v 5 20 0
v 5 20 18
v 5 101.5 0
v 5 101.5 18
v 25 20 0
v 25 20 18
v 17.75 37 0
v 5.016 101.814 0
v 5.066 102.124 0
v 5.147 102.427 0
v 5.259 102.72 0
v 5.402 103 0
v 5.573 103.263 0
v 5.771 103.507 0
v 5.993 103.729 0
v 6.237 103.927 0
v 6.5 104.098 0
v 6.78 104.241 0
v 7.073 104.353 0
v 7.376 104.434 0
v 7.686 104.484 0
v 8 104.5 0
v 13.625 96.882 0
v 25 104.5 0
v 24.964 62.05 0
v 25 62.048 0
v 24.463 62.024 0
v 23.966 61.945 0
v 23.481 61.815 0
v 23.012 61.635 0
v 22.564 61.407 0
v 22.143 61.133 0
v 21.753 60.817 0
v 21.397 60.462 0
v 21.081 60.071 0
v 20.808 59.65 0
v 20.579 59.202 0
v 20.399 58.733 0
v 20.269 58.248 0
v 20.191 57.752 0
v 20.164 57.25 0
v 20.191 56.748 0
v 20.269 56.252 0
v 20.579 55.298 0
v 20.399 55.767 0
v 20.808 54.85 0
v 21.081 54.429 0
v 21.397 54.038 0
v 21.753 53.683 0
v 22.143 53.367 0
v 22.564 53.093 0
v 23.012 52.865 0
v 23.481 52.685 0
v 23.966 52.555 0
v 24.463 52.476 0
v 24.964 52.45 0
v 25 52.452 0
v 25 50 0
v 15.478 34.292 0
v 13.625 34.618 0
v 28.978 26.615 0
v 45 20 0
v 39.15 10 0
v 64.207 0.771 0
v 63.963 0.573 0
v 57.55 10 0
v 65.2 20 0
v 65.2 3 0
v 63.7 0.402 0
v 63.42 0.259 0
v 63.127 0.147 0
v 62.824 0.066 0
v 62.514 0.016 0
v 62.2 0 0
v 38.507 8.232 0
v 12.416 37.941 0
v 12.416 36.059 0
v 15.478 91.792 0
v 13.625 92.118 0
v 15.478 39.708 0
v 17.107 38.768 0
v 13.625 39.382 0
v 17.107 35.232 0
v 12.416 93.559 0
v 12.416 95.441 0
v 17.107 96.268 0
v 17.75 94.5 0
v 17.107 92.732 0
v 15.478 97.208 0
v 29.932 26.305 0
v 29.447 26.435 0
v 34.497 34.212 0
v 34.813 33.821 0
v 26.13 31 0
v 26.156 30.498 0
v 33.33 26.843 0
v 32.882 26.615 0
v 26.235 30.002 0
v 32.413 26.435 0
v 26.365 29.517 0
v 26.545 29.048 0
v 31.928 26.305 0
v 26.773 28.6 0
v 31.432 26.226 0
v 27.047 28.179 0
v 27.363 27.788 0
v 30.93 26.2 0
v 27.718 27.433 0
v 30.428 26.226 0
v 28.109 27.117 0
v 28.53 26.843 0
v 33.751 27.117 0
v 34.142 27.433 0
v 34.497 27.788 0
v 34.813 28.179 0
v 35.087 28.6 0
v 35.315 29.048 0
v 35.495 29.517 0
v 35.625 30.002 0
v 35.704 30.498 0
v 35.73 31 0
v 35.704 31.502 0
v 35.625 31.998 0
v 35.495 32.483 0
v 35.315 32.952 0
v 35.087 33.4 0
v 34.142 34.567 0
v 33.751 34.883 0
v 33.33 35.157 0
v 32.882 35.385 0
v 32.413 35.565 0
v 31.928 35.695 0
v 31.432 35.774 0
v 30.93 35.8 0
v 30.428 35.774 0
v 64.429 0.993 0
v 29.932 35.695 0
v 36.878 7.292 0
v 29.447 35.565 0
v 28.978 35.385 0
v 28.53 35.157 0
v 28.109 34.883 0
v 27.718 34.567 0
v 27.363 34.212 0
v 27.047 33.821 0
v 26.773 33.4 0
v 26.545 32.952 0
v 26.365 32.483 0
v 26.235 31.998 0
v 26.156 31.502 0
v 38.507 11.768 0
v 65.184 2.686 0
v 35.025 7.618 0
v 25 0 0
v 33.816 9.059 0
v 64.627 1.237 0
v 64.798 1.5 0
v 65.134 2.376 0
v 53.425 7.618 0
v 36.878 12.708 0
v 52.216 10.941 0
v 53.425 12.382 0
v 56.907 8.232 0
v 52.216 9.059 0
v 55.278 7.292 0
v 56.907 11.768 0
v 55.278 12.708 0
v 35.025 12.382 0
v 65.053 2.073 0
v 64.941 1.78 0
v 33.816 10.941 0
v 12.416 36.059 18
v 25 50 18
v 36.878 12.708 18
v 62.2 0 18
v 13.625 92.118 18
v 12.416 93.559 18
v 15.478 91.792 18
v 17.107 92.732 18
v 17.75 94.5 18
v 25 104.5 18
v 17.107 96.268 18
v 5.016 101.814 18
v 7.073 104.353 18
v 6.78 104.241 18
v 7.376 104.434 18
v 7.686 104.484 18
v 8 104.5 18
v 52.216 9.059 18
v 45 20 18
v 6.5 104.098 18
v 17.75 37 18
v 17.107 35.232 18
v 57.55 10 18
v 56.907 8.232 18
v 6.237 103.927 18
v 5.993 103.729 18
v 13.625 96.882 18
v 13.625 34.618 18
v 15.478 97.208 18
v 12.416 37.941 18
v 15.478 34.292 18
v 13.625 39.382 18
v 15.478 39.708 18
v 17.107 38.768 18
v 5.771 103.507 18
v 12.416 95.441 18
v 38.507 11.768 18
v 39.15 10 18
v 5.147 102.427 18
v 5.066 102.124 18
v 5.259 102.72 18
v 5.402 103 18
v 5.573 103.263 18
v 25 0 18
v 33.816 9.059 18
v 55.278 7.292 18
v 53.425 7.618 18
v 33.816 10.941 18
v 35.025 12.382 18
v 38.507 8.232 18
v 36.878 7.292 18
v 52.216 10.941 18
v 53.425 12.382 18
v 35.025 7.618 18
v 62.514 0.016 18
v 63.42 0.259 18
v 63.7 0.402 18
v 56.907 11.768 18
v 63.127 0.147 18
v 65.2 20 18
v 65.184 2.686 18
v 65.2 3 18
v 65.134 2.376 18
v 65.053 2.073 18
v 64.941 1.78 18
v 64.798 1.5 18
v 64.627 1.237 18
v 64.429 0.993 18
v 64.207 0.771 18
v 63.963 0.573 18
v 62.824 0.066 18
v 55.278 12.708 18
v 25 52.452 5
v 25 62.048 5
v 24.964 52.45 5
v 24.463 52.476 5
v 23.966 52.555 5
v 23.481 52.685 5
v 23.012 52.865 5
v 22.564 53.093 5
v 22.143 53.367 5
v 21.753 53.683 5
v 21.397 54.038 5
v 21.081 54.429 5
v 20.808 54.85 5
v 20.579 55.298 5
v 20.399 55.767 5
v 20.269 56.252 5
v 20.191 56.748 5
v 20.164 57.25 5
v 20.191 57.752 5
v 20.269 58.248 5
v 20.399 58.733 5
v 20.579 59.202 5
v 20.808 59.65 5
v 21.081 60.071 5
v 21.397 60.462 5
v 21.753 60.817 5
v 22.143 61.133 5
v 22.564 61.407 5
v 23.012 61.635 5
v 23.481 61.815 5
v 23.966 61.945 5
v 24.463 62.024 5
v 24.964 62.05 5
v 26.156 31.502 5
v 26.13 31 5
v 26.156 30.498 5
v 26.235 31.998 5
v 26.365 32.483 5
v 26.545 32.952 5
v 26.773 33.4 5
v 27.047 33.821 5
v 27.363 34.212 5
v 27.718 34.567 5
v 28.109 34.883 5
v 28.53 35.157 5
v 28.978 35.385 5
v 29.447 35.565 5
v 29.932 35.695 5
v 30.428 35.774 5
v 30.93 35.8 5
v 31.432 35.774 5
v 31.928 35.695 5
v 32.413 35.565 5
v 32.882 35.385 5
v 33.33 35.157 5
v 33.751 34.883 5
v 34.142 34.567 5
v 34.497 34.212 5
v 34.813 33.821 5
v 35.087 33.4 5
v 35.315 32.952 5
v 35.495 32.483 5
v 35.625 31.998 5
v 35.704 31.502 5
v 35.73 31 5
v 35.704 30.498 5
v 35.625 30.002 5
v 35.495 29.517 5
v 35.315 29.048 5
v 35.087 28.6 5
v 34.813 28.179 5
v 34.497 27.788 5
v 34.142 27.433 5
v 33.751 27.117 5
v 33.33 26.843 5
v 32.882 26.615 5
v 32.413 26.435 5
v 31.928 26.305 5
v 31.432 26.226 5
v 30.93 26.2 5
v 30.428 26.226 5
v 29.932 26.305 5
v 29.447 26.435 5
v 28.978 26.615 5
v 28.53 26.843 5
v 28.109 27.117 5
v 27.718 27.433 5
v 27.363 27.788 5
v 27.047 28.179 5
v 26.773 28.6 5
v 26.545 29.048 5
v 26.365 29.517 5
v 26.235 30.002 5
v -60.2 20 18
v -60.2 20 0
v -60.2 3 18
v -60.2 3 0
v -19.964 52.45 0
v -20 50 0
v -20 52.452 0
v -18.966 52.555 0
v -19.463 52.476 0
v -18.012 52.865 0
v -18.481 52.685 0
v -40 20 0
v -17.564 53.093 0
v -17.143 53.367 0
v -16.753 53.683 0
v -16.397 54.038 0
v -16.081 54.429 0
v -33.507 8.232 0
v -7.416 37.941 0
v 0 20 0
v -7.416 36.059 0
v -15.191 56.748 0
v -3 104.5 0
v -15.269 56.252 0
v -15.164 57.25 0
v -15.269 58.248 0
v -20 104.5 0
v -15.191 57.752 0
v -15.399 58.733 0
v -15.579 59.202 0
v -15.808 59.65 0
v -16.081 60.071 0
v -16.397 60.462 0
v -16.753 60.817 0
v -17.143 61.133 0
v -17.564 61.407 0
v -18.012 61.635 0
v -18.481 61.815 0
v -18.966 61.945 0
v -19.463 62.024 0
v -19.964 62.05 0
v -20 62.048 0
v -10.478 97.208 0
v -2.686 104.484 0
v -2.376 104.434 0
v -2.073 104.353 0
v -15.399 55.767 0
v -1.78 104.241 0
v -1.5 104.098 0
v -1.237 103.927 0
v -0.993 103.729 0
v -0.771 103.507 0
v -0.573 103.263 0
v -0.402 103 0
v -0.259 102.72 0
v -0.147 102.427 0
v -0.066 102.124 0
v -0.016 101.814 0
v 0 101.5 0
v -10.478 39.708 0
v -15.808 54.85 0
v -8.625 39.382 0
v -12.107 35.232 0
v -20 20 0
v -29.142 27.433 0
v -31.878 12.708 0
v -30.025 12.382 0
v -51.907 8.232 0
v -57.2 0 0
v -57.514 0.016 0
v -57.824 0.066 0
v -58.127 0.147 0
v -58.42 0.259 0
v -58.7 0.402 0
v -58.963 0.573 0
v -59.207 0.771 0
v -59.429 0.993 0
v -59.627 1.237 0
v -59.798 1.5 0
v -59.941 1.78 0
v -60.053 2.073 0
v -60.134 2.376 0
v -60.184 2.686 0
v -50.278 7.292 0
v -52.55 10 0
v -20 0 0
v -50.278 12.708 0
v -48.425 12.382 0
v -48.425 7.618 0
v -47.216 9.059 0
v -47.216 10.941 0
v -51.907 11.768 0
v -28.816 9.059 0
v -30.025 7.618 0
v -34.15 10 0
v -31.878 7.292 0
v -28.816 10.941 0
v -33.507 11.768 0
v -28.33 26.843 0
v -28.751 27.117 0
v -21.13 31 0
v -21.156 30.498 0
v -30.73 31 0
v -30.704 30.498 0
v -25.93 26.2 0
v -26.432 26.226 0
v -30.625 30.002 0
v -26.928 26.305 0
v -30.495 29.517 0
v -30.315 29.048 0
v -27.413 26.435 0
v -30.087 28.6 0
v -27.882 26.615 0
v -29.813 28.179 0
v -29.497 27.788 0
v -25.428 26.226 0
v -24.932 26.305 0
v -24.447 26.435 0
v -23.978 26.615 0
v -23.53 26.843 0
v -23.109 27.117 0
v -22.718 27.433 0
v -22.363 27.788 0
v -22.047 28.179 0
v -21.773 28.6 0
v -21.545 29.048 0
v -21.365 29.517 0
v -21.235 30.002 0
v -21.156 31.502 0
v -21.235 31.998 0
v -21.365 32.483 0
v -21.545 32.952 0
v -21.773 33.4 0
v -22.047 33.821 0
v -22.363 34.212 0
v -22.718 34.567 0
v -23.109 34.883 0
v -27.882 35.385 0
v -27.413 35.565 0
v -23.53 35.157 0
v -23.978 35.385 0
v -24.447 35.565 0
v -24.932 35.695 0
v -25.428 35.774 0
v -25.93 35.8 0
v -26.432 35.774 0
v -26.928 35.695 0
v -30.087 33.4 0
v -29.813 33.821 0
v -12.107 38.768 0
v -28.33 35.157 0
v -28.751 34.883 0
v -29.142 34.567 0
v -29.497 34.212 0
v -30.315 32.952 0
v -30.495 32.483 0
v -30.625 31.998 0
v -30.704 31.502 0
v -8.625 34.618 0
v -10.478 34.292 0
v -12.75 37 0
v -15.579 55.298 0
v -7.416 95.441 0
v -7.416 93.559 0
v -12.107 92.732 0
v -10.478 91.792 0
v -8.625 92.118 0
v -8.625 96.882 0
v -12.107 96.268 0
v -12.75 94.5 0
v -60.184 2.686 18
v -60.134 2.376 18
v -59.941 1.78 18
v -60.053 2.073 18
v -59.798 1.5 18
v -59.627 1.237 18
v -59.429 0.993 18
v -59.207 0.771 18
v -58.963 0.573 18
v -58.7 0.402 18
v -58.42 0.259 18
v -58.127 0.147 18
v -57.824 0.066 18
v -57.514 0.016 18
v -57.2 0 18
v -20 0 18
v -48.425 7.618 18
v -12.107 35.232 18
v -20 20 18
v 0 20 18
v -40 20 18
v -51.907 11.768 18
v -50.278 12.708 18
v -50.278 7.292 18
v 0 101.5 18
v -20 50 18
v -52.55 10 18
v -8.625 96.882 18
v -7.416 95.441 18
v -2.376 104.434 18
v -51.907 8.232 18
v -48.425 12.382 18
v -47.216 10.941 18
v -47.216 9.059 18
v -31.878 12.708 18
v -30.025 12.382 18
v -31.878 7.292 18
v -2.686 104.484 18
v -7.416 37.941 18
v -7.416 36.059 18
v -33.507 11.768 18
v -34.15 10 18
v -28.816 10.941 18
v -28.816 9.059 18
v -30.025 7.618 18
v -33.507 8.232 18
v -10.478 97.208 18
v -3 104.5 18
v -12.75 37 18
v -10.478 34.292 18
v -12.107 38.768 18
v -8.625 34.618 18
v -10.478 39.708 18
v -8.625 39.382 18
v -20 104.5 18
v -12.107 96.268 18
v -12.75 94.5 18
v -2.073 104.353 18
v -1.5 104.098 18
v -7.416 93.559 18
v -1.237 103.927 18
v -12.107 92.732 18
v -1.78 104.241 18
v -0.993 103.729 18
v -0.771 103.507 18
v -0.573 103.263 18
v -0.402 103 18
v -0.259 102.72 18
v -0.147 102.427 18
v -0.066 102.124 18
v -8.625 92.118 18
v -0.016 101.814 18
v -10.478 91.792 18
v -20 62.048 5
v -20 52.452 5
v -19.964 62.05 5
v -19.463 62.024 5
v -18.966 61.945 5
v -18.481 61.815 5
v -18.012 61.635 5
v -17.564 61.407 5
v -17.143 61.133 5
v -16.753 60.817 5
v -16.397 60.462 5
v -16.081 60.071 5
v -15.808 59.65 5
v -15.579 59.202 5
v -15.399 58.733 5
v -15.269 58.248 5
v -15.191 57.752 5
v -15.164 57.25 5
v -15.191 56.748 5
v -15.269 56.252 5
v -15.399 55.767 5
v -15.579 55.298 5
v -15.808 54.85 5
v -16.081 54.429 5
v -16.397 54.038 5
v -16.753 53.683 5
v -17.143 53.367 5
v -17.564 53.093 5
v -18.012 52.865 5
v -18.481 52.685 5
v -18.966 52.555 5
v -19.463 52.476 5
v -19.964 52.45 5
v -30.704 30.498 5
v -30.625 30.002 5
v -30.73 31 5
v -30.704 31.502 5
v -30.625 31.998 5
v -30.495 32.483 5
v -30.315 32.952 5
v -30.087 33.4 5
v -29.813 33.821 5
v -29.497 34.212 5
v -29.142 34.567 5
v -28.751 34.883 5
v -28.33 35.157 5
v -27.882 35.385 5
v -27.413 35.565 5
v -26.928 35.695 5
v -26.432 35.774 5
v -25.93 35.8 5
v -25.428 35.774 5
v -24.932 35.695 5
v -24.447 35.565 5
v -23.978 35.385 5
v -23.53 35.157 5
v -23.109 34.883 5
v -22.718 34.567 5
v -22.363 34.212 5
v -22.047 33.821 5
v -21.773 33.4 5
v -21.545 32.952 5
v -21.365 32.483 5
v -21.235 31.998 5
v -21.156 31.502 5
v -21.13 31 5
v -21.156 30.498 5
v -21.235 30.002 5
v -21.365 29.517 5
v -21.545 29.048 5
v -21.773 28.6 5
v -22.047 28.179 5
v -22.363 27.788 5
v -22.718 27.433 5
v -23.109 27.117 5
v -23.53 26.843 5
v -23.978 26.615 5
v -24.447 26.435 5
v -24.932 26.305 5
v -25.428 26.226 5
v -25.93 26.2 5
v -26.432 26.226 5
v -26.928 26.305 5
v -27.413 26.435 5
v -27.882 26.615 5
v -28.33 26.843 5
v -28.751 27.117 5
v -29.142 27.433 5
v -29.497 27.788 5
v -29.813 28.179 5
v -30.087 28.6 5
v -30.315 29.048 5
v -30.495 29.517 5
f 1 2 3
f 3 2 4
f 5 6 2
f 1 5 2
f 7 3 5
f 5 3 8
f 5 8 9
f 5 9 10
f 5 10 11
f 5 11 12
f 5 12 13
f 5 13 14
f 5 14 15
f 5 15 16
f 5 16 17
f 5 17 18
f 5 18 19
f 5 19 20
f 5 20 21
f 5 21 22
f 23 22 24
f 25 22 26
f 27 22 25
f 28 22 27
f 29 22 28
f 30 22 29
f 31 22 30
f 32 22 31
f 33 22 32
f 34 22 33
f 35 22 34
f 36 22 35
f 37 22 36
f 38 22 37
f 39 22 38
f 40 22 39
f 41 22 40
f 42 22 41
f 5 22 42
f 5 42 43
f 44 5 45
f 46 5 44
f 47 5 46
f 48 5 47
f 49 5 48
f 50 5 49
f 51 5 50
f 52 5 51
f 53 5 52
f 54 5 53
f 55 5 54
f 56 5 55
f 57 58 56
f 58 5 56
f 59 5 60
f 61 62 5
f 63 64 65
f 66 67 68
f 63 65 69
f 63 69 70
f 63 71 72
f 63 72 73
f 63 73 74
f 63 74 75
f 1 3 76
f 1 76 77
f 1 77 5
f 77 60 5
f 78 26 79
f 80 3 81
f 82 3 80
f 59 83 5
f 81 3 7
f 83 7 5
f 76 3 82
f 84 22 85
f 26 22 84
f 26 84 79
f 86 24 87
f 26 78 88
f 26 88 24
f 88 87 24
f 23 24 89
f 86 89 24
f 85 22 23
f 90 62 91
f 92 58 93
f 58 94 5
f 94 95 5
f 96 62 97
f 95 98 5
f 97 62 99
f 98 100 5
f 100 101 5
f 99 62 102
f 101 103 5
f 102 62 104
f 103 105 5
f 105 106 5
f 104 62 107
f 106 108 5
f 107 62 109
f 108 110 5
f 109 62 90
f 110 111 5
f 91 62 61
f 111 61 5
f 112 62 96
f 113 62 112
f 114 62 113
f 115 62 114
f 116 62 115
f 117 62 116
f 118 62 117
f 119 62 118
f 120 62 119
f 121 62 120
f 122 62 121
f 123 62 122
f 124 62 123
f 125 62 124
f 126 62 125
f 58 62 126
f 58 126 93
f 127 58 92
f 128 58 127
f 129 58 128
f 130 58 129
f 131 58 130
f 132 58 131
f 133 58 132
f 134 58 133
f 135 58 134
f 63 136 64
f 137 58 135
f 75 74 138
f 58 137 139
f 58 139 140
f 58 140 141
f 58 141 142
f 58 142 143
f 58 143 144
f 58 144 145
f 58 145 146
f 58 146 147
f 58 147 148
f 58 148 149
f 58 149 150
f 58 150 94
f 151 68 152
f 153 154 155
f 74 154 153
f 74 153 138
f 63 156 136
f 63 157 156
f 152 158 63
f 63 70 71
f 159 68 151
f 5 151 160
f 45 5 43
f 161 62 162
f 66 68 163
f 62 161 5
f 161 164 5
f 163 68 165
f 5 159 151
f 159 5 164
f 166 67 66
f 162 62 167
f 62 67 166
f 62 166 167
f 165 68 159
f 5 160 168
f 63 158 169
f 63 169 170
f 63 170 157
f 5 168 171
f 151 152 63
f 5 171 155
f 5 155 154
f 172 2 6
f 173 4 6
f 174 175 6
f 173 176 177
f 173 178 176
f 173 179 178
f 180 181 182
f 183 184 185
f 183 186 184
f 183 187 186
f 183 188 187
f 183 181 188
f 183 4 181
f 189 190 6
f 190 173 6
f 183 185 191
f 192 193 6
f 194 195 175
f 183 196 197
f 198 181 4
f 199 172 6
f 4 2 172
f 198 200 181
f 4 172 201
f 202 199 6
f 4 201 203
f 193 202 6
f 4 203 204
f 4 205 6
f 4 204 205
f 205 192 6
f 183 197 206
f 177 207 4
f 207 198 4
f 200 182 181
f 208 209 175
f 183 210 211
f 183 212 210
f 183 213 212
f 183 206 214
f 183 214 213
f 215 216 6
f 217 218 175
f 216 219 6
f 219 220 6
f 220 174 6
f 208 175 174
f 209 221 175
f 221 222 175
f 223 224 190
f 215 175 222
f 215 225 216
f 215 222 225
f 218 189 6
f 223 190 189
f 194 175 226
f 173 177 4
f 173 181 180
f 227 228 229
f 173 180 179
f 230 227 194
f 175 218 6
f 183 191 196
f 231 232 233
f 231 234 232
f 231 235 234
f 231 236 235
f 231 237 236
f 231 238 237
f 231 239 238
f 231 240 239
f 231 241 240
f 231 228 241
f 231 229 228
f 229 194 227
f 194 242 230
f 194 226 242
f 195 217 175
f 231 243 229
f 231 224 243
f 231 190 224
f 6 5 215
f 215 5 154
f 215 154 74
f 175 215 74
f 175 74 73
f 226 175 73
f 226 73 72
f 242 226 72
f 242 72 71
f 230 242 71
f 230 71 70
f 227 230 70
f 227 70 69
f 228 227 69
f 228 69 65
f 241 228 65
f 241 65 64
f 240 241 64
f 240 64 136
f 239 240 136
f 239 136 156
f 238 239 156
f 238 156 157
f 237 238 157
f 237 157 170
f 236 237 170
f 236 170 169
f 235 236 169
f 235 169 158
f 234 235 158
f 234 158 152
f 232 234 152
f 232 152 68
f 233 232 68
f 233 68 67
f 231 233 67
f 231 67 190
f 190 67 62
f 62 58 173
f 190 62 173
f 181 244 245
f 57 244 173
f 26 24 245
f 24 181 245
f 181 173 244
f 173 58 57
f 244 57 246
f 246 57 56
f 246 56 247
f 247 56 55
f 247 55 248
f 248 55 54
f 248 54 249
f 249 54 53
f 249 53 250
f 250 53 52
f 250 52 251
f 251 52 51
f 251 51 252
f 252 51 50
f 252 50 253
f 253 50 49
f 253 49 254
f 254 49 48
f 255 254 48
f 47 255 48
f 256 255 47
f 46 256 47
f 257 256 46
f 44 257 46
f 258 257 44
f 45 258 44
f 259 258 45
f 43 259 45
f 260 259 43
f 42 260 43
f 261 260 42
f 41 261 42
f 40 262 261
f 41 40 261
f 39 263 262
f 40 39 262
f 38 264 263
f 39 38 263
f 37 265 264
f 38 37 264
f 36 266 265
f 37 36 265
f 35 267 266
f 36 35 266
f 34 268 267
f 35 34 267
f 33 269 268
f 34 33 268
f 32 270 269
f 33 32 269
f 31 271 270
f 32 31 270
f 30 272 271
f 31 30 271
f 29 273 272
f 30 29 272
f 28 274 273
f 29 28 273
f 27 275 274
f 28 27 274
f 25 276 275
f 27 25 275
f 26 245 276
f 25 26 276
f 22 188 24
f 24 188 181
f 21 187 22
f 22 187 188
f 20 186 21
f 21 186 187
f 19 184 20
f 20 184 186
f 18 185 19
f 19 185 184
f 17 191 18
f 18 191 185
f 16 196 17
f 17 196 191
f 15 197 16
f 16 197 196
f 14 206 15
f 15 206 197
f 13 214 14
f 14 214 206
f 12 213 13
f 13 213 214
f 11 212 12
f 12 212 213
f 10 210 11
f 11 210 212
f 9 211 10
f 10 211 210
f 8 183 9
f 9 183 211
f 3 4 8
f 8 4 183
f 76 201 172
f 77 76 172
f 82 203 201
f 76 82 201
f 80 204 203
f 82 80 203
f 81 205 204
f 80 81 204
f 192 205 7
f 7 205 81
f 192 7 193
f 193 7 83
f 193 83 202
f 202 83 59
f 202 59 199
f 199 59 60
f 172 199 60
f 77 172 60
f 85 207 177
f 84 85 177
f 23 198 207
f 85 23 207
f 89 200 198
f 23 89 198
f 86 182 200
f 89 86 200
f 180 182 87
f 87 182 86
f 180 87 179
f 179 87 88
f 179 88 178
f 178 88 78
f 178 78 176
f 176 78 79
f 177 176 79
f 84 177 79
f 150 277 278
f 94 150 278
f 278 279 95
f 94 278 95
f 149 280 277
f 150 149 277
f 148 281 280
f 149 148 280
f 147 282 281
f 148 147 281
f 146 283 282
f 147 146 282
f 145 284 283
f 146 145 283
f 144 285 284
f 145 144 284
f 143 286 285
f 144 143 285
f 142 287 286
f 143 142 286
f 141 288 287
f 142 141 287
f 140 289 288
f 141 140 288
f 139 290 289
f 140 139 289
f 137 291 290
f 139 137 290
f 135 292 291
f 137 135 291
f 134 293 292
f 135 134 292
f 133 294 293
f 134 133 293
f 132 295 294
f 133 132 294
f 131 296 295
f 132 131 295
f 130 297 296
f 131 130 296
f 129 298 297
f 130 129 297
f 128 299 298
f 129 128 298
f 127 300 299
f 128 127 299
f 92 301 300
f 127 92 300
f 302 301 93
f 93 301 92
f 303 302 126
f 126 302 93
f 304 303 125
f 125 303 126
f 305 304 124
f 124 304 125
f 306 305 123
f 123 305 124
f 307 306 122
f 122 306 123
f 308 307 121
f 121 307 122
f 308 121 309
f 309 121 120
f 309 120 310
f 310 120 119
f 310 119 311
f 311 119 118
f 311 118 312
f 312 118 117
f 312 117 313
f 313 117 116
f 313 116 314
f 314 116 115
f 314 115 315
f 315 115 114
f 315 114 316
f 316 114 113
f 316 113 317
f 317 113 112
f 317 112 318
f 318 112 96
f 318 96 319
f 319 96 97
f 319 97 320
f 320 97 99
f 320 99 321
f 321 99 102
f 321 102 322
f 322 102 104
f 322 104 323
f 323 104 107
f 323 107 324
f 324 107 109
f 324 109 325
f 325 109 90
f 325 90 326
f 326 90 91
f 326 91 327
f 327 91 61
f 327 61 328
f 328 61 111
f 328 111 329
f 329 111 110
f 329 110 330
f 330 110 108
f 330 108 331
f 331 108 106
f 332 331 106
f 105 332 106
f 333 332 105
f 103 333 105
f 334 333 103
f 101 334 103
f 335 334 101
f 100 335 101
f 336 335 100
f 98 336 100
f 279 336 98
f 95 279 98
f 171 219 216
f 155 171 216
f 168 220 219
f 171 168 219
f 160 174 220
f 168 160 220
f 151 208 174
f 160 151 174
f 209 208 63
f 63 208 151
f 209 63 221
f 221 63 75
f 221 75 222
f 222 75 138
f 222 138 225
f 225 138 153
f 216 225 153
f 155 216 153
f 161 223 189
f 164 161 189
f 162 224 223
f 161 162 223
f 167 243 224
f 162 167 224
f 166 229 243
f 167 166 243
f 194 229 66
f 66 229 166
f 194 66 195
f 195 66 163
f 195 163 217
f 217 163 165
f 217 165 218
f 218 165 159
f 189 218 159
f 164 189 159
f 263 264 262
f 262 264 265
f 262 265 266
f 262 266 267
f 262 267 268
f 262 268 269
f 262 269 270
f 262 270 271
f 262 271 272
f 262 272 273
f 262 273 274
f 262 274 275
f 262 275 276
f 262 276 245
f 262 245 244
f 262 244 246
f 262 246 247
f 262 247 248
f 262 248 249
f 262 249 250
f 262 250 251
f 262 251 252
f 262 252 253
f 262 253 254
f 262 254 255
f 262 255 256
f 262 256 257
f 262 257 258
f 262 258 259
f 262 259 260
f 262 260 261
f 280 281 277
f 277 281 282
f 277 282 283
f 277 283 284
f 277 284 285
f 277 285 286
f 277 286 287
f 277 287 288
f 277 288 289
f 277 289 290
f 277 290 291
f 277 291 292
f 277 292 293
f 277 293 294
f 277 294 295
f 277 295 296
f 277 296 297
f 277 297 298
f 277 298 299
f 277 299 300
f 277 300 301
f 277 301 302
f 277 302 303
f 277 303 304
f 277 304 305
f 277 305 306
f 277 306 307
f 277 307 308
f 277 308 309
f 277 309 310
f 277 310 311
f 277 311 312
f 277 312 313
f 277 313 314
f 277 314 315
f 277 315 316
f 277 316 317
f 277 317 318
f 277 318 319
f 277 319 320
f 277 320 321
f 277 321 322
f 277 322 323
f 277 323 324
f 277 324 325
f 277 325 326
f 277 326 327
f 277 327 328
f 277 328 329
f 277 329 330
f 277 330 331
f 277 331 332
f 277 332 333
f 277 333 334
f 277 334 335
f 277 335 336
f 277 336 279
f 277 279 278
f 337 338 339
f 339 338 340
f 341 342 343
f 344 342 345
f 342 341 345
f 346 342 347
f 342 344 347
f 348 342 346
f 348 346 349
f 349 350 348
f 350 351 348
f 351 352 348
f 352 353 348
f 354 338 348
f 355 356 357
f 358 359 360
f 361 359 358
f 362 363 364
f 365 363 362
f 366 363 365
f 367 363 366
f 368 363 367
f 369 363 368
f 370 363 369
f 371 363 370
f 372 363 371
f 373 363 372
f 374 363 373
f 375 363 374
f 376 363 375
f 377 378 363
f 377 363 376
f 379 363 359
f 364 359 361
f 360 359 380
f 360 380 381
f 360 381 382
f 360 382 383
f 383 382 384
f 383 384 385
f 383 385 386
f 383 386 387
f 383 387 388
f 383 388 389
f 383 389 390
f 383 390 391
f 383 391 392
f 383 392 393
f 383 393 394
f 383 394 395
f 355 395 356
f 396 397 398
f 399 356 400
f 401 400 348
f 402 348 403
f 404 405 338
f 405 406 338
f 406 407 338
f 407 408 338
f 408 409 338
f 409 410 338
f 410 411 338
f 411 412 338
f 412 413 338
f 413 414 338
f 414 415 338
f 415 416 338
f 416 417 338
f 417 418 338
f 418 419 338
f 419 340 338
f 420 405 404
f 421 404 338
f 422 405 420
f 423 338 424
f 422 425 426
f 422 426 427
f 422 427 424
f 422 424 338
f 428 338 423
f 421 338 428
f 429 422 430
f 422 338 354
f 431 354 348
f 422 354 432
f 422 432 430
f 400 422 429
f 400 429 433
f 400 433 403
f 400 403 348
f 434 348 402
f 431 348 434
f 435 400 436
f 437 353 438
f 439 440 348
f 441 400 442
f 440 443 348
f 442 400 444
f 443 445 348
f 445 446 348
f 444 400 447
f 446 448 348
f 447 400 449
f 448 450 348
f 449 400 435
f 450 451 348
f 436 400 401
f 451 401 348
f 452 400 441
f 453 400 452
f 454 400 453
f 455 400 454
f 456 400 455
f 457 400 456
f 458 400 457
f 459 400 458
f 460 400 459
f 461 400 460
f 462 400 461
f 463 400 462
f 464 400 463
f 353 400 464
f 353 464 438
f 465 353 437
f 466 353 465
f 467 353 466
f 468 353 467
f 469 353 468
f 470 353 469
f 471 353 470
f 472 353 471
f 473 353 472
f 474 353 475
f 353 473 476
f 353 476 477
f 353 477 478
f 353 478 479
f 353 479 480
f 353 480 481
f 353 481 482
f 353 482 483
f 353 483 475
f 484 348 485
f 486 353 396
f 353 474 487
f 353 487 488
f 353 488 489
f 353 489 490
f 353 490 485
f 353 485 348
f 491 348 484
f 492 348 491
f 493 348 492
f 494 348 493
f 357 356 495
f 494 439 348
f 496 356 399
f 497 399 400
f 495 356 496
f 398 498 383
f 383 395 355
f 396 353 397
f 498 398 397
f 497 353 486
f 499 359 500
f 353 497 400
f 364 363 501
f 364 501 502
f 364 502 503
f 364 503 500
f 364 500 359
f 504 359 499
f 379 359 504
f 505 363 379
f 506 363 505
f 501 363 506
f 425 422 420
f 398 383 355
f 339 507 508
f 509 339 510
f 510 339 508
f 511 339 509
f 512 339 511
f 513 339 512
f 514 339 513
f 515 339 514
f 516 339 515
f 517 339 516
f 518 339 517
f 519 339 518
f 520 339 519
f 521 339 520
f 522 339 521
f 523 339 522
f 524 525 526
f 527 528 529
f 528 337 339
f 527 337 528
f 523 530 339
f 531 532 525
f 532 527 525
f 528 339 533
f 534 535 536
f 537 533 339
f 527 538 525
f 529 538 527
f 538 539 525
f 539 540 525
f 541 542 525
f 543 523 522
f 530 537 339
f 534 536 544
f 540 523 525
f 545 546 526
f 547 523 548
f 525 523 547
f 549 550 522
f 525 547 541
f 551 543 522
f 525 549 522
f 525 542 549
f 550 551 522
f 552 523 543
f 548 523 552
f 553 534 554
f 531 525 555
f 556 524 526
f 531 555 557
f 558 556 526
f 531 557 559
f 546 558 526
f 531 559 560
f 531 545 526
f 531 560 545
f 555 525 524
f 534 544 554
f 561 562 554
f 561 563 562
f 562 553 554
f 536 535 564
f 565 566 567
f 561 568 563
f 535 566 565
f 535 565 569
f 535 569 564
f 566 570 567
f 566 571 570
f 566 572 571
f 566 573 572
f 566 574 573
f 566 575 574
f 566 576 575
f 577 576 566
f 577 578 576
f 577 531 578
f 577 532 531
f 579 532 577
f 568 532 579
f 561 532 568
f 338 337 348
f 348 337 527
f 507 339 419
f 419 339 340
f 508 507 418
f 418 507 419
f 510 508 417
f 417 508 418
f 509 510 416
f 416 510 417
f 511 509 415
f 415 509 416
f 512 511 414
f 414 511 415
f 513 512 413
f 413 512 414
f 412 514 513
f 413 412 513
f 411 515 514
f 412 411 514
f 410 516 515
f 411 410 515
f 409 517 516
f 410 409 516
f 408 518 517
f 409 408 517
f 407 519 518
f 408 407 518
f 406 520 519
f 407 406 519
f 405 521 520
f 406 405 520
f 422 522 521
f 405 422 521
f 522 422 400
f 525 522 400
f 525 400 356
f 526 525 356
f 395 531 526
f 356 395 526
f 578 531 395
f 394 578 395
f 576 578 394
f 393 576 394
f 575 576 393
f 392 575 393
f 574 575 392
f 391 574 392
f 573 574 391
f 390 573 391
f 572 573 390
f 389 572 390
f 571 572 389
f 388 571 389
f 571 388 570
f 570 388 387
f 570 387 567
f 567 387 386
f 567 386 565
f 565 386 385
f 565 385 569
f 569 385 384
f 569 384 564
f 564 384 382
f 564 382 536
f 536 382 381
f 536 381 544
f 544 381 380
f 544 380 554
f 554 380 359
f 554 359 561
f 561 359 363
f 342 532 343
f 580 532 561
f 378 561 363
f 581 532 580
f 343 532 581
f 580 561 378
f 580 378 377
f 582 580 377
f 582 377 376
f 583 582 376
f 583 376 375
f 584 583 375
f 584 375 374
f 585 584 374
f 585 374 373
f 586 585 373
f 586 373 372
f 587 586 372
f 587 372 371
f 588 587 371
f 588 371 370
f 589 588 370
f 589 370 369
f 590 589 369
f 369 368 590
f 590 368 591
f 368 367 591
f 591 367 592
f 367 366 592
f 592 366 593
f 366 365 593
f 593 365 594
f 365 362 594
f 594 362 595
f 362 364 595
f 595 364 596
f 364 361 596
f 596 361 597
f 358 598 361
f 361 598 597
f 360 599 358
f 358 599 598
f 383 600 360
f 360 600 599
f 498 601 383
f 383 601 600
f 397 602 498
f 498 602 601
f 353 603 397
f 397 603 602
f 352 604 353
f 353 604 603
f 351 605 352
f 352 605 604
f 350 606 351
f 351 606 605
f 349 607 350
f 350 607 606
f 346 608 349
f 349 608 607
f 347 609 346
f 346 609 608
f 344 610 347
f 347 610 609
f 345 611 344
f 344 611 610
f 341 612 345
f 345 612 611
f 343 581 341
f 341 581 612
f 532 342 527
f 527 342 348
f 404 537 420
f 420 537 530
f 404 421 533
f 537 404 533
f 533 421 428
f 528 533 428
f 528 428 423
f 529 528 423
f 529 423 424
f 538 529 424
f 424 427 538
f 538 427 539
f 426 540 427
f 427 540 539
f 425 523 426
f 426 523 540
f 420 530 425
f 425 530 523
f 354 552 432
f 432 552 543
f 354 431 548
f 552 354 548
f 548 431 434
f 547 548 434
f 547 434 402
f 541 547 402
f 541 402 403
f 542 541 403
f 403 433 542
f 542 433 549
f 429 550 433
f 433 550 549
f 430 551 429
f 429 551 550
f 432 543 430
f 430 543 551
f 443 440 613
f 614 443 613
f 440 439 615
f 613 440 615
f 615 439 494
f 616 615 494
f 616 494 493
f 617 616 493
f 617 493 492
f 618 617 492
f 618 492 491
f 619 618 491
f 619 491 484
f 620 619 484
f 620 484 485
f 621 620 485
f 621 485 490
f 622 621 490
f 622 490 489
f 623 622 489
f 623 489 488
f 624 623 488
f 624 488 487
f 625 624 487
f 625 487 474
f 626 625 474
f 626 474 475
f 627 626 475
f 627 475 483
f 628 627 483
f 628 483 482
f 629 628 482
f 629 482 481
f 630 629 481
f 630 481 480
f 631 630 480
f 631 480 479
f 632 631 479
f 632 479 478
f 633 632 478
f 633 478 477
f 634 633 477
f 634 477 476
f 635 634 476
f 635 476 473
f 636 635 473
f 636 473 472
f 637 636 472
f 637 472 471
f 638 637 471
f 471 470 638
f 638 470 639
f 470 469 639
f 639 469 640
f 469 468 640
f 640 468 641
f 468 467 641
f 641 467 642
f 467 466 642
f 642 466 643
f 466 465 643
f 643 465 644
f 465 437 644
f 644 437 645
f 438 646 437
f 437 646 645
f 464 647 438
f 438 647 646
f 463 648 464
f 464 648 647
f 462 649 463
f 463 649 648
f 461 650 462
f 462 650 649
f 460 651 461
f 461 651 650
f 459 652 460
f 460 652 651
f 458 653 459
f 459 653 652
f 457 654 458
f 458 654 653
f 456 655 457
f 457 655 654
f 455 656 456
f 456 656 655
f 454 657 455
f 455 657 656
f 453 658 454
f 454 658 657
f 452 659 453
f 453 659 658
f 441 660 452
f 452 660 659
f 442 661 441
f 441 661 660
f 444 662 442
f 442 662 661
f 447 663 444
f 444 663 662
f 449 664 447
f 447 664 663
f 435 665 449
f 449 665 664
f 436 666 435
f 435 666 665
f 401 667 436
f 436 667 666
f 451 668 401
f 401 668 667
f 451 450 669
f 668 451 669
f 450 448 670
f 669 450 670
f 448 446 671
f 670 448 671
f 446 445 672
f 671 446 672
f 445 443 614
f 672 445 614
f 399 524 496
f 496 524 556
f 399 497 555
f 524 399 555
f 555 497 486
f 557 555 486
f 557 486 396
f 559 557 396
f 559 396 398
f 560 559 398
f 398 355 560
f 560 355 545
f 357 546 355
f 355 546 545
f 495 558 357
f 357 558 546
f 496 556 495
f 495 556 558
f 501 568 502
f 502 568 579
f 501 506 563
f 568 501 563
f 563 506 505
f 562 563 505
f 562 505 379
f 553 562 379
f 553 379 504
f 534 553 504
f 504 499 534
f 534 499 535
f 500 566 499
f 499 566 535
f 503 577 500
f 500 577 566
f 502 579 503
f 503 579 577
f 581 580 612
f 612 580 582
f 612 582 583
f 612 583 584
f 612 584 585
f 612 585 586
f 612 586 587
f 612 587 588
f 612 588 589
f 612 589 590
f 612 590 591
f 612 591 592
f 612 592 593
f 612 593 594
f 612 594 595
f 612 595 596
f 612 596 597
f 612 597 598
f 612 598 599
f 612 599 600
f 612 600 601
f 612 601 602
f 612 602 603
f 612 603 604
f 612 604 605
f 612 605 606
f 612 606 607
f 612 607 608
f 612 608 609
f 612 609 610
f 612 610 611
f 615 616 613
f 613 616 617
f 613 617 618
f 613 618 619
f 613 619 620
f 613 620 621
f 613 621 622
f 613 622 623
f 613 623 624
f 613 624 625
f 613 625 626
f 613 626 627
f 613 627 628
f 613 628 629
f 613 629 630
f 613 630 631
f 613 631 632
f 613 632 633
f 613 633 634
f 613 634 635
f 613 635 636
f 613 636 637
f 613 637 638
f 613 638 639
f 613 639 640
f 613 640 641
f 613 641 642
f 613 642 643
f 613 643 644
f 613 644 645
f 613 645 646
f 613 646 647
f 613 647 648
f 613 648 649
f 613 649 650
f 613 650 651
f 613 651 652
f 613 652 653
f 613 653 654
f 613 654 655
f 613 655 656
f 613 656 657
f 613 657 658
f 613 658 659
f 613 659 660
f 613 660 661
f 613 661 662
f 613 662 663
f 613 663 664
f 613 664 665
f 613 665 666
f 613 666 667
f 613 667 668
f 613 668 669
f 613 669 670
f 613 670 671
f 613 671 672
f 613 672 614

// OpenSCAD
// file: library.scad
//rounded cube Functions from: http://www.thingiverse.com/thing:38069


module cube_fillet(size,radius=-1,vertical,top,bottom,center=false,$fn=0){
    if (center) {
        cube_fillet_inside(size, radius, vertical, top, bottom, $fn=$fn);
    } else {
        translate([size[0]/2, size[1]/2, size[2]/2])
            cube_fillet_inside(size, radius, vertical, top, bottom, $fn=$fn);
    }
}
module fillet(radius, height=100, $fn=60) {  
    //this creates negative of fillet,
    //i.e. thing to be substracted from object
    translate([-radius, -radius, -height/2-0.01])
        difference() {
            cube([radius*2, radius*2, height+0.02]);
            cylinder(r=radius, h=height+0.02, $fn=$fn);
        }
}

module cube_negative_fillet(size,radius=-1,vertical, top,bottom,$fn=0){
    j=[1,0,1,0];

    for (i=[0:3]) {
        if (radius > -1) {
            rotate([0, 0, 90*i])
                translate([size[1-j[i]]/2, size[j[i]]/2, 0])
                    fillet(radius, size[2], $fn=$fn);
        } else {
            rotate([0, 0, 90*i])
                translate([size[1-j[i]]/2, size[j[i]]/2, 0])
                    fillet(vertical[i], size[2], $fn=$fn);

        }
        rotate([90*i, -90, 0])
            translate([size[2]/2, size[j[i]]/2, 0 ])
                fillet(top[i], size[1-j[i]], $fn=$fn);
        rotate([90*(4-i), 90, 0])
            translate([size[2]/2, size[j[i]]/2, 0])
                fillet(bottom[i], size[1-j[i]], $fn=$fn);
    }
}

module cube_fillet_inside(size,radius=-1,vertical,top,bottom,$fn=0){

    if (radius == 0) {
        cube(size, center=true);
    } else {
        difference() {
            cube(size, center=true);
            cube_negative_fillet(size, radius, vertical, top, bottom, $fn=$fn);
        }
    }
}
// file: dimensions.scad
// Dimensions
// Author: sdavi


LM8UU = [8, 15, 24];//rod diameter,outter diameter, length
LM12UU = [12, 21, 30];
LM12LUU = [12, 21, 57];

BEARING_624 = [4,13,5]; //inner diameter(hole), outter diameter, thickness (http://reprap.org/wiki/Ball_bearing)
BEARING_2x624 = [4, 13, 10]; // 2 624 bearings together, good size for GT2

BEARING_6300 = [10,35,11]; //inner diameter, outer diameter, thickness



GT2_belt_width = 6;
GT2_belt_pitch = 2;
GT2_belt_thickness = 1.38;
GT2_belt_tooth_height = 0.75;  
GT2_belt_tooth_ratio = 0.5;



GT2_pulley_geared_diameter=12.2;//measured from top of tooth to top of tooth opp side// 12.2 is for the 20 tooth pulley

//from metric (prusa i3)
m4_diameter = 4.6;
m4_nut_diameter = 7.6;
m4_nut_diameter_horizontal = 8.15;

m3_diameter = 3.6;
m3_nut_diameter = 5.3;
m3_nut_diameter_horizontal = 6.8;
m3_washer_diameter = 6.9;
//end i3 variables

m5_diameter = 5.5;

//Hex Head M3x30: Head 5.5mm flat to flat, 2.12mm thick
m3_hex_head_diameter = 5.5*2/sqrt(3) + 0.2;

M4 = m4_diameter;
M3 = m3_diameter;
M5 = m5_diameter;
m4_washer_thickness = 0.8; //flat and penny washers
m4_washer_diameter = 9.6;

nema17_holes = 31;// mm between screws
nema17_width = 42; //width
// file: configuration.scad
// Configuration
// Author: sdavi


include <dimensions.scad>
use <library.scad>


x_rod_distance = 45;

y_bearing = LM8UU;
x_bearing = LM8UU;
z_bearing = LM12LUU;
belt_bearing = BEARING_2x624;


end_belt_bearing_distance = 25;// distance between 2 bearings on y-ends
belt_clearance = 9.5; //space for belts

frame_screw = M5; //m5 screws for v/tslot

frame_spacer_height = 18; //height to spacer to mount to frame to clear x-ends 


// calculated vars

//y bearing block
y_bearing_block_length = 2*y_bearing[2] + M3*2 + 5;
y_bearing_block_width = y_bearing[1]+5;
y_bearing_block_height = 6+y_bearing[1]/2;

xy_bearing_distance = y_bearing_block_width/2+belt_clearance+belt_bearing[1]/2; //distance between center of y-bearing to center of x-belt bearing 


//min height for belt bearings
min_beltbearing_height = max(((belt_bearing[2]+m4_washer_thickness*2) * 2), y_bearing_block_height);
// file: lib/y_motor_end.scad
// y_motor end
// Author: sdavi


include <../configuration.scad>
include <../dimensions.scad>

nema_arm_height = 10;
nema_mount_width = nema17_holes+11;
 

y_block_length = y_bearing_block_width/2+xy_bearing_distance+belt_bearing[1]/2+nema_mount_width+20;
y_block_width = y_bearing_block_length; 
y_block_height = 4;


lid_thickness = y_block_height+min_beltbearing_height/2-y_bearing[0]/2-3;

echo("block length:", y_block_length);
echo("block width:", y_block_width);
echo("block height:", y_block_height);

echo("Total Height:", y_block_height*2+min_beltbearing_height);


//translate([5,0,0])frame_spacer();
//mirror([1,0,0])frame_spacer();

//translate([5,0,0]) y_motor_end_top();
//mirror([1,0,0])y_motor_end_top();

//translate([5,0,0]) y_motor_end_bottom();
//mirror([1,0,0])y_motor_end_bottom();







//calculate positions for bearings and motor
nema_center=[	y_block_width-nema_mount_width/2,
				y_block_length-nema_mount_width/2, 
				0];

inner_bearing_pos = [	y_block_width-nema_mount_width/2+GT2_pulley_geared_diameter/2+(GT2_belt_thickness-GT2_belt_tooth_height)+belt_bearing[2]/2, 
						y_bearing_block_width/2+xy_bearing_distance, 
						0];

outer_bearing_pos = [	inner_bearing_pos[0]-end_belt_bearing_distance, 
						inner_bearing_pos[1]-5, 
						0 ];

tension_bearing_start_pos = [nema_center[0],nema_center[1]- (nema_center[1]-outer_bearing_pos[1])/2,0];//starting position = max tension
h=tension_bearing_start_pos[1]*(((nema_center[0]-GT2_pulley_geared_diameter/2)-(outer_bearing_pos[0]-belt_bearing[2]/2))/2)/(nema_center[1]-outer_bearing_pos[1]);//distance from top of gt2 pulley which provides no tension
echo(h);
tension_bearing_end_pos = [nema_center[0]- GT2_pulley_geared_diameter/2-h-belt_bearing[1]/2,nema_center[1]- (nema_center[1]-outer_bearing_pos[1])/2,0]; // end position= no tension on belt

echo(tension_bearing_end_pos);
echo(tension_bearing_start_pos);

module y_motor_end_top(){

	difference(){
		y_motor_end();
		cube([y_block_width+0.2,y_block_length,y_block_height*2+min_beltbearing_height-lid_thickness]);

	}

}

module y_motor_end_bottom(){
	intersection(){
		y_motor_end();
		cube([y_block_width+0.2,y_block_length,y_block_height*2+min_beltbearing_height-lid_thickness]);

	}
}



module frame_spacer(){

	difference(){

		union(){
			difference(){
				cube_fillet([y_block_width,y_block_length,frame_spacer_height], vertical=[3,3,3,3]);
				//corner
				cube([20,20,frame_spacer_height]);
				//cutout
				translate([20,20,0]) cube([y_block_width, y_block_length, frame_spacer_height]);
			}

			linear_extrude(height=frame_spacer_height,center=false,convexity=10, twist=0)
				polygon( points=[[20,20],[40,20],[20,50]] );		

			
		}
	
		frame_screws();

		//bearing inner
		translate(inner_bearing_pos)  
			cylinder(d=m4_washer_diameter, h=5, $fn=60);
		//bearing outer
		translate(outer_bearing_pos)  
			cylinder(d=m4_washer_diameter, h=5, $fn=60);
		
		//adjustable tension bearing
		translate([0,tension_bearing_start_pos[1],0]){
			translate([tension_bearing_end_pos[0],0,0]) 
				cylinder(d=m4_washer_diameter, h=5, $fn=60);
		}

	}
	

}


module y_motor_end(){

	difference(){
		base();

		//y rod hole	
		translate([y_block_width-11.5,y_bearing_block_width/2, y_block_height+min_beltbearing_height/2])
			rotate([0,90,0]) cylinder(d=y_bearing[0]+0.2, h=13, $fn=30);

		bearing_holes();
		nema17_holes();
		frame_screws();

	}//end difference
}

module base(){
	difference(){
		union(){
			
			cube_fillet([y_block_width,y_block_length,y_block_height], vertical=[3,3,3,3]);//bottom
			translate([0,0,y_block_height+min_beltbearing_height])
				cube_fillet([y_block_width,y_block_length,y_block_height], vertical=[3,3,3,3]);//top

			
			//Y rod block
			cube_fillet([y_block_width, y_bearing_block_width, min_beltbearing_height+y_block_height], vertical=[3,3,3,3]);
			//nema mount support	
	
			//back support/frame mount
			cube_fillet([20, y_block_length, min_beltbearing_height+y_block_height], vertical=[3,3,3,3]);
	
			//corner support block
			translate([0, y_block_length-20, 0]) cube_fillet([y_block_width,20,min_beltbearing_height+y_block_height], vertical=[3,3,3,3]);
			
			//support block near middle front
			translate([y_block_width-10, inner_bearing_pos[1]+belt_bearing[1]/2+10, 0]) cube_fillet([10, y_block_length-inner_bearing_pos[1]-belt_bearing[1]/2-10, min_beltbearing_height+y_block_height], vertical=[3,3,3,3]);
	
			//
	
		}//end union

		//front side nema cutaway
		translate([y_block_width-nema_mount_width/2, y_block_length-20, min_beltbearing_height+y_block_height-(nema17_holes-11)/2]){
			rotate([-90,0,0]) cylinder(d=nema17_holes-11, h=20, $fn=30);
			translate([-(nema17_holes-11)/2, 0, 0])cube([20, (nema17_holes-11),(nema17_holes-11)/2]);
		}

		//side nema cutaway
		translate([y_block_width-15, y_block_length-nema_mount_width/2, min_beltbearing_height+y_block_height-(nema17_holes-11)/2]){
			rotate([-90,0,-90]) cylinder(d=nema17_holes-11, h=20, $fn=30);
			translate([-10, -(nema17_holes-11)/2, 0])cube([25, (nema17_holes-11),(nema17_holes-11)/2]);
		}

		//corner cutaway
		cube([20,20,min_beltbearing_height+y_block_height*2]);

		//tension bearing side cutaway
		translate([0, y_block_length-20-40, y_block_height])
			cube([20, 40, min_beltbearing_height]);

		//outter bearing cutaway
		translate([0,20,y_block_height]) cube([20, 10, min_beltbearing_height]);

	}//end difference
}



module frame_screws(){
	// frame mount screw holes
		translate([10,37,0]) cylinder(d=frame_screw, h=min_beltbearing_height+y_block_height*2);
		translate([10,y_block_length-10, 0]) cylinder(d=frame_screw, h=min_beltbearing_height+y_block_height*2);
		translate([18+(y_block_width-20)/3, 10,0]) cylinder(d=frame_screw, h=min_beltbearing_height+y_block_height*2);
		color("red")translate([18+2*(y_block_width-20)/3+5, 10,0]) cylinder(d=frame_screw, h=min_beltbearing_height+y_block_height*2);
}


module bearing_holes(){
	//belt bearing holes

	//bearing inner
	translate(inner_bearing_pos)  cylinder(d=belt_bearing[0]+0.2, h=y_block_height*2+min_beltbearing_height, $fn=60);
	//bearing outer
	translate(outer_bearing_pos)  cylinder(d=belt_bearing[0]+0.2, h=y_block_height*2+min_beltbearing_height, $fn=60);
	//bearing outer padding space
	translate(outer_bearing_pos) translate([0,0,y_block_height]) cylinder(d=belt_bearing[1]*1.8, h=min_beltbearing_height, $fn=30);

	//adjustable tension bearing
	translate([0,tension_bearing_start_pos[1],0]){
		translate([tension_bearing_start_pos[0],0,0]) 
			cylinder(d=belt_bearing[0]+0.2, h=y_block_height*2+min_beltbearing_height, $fn=60);
		translate([tension_bearing_end_pos[0],0,0]) 
			cylinder(d=belt_bearing[0]+0.2, h=y_block_height*2+min_beltbearing_height, $fn=60);
		translate([tension_bearing_end_pos[0],-(belt_bearing[0]+0.2)/2,0])
			cube([tension_bearing_start_pos[0]-tension_bearing_end_pos[0],belt_bearing[0]+0.2, y_block_height*2+min_beltbearing_height]);


	}

}



module nema17_holes(){
	//nema17 placement

	//central hole for nema
	translate(nema_center){
		cylinder(d=24, h=min_beltbearing_height+y_block_height, $fn=60);
	
		//upper bigger central clearance hole
		translate([0,0,y_block_height]) cylinder(d=35, h=min_beltbearing_height, $fn=60);
	}

	translate([nema_center[0]-nema_mount_width/2,nema_center[1]-nema_mount_width/2,0]){
		//motor holes
		for(p=[[nema17_holes,0],[0, nema17_holes],[nema17_holes,nema17_holes]]){
			translate([p[0]+11/2, p[1]+11/2, 0]){
				cylinder(d=3.4, h=min_beltbearing_height+y_block_height*2, $fn=60);

			}
		}
	}


	




}
// main file
// y_motor end spacer
// Author: sdavi


include <lib/y_motor_end.scad>

translate([5,0,0])frame_spacer();
mirror([1,0,0])frame_spacer();
